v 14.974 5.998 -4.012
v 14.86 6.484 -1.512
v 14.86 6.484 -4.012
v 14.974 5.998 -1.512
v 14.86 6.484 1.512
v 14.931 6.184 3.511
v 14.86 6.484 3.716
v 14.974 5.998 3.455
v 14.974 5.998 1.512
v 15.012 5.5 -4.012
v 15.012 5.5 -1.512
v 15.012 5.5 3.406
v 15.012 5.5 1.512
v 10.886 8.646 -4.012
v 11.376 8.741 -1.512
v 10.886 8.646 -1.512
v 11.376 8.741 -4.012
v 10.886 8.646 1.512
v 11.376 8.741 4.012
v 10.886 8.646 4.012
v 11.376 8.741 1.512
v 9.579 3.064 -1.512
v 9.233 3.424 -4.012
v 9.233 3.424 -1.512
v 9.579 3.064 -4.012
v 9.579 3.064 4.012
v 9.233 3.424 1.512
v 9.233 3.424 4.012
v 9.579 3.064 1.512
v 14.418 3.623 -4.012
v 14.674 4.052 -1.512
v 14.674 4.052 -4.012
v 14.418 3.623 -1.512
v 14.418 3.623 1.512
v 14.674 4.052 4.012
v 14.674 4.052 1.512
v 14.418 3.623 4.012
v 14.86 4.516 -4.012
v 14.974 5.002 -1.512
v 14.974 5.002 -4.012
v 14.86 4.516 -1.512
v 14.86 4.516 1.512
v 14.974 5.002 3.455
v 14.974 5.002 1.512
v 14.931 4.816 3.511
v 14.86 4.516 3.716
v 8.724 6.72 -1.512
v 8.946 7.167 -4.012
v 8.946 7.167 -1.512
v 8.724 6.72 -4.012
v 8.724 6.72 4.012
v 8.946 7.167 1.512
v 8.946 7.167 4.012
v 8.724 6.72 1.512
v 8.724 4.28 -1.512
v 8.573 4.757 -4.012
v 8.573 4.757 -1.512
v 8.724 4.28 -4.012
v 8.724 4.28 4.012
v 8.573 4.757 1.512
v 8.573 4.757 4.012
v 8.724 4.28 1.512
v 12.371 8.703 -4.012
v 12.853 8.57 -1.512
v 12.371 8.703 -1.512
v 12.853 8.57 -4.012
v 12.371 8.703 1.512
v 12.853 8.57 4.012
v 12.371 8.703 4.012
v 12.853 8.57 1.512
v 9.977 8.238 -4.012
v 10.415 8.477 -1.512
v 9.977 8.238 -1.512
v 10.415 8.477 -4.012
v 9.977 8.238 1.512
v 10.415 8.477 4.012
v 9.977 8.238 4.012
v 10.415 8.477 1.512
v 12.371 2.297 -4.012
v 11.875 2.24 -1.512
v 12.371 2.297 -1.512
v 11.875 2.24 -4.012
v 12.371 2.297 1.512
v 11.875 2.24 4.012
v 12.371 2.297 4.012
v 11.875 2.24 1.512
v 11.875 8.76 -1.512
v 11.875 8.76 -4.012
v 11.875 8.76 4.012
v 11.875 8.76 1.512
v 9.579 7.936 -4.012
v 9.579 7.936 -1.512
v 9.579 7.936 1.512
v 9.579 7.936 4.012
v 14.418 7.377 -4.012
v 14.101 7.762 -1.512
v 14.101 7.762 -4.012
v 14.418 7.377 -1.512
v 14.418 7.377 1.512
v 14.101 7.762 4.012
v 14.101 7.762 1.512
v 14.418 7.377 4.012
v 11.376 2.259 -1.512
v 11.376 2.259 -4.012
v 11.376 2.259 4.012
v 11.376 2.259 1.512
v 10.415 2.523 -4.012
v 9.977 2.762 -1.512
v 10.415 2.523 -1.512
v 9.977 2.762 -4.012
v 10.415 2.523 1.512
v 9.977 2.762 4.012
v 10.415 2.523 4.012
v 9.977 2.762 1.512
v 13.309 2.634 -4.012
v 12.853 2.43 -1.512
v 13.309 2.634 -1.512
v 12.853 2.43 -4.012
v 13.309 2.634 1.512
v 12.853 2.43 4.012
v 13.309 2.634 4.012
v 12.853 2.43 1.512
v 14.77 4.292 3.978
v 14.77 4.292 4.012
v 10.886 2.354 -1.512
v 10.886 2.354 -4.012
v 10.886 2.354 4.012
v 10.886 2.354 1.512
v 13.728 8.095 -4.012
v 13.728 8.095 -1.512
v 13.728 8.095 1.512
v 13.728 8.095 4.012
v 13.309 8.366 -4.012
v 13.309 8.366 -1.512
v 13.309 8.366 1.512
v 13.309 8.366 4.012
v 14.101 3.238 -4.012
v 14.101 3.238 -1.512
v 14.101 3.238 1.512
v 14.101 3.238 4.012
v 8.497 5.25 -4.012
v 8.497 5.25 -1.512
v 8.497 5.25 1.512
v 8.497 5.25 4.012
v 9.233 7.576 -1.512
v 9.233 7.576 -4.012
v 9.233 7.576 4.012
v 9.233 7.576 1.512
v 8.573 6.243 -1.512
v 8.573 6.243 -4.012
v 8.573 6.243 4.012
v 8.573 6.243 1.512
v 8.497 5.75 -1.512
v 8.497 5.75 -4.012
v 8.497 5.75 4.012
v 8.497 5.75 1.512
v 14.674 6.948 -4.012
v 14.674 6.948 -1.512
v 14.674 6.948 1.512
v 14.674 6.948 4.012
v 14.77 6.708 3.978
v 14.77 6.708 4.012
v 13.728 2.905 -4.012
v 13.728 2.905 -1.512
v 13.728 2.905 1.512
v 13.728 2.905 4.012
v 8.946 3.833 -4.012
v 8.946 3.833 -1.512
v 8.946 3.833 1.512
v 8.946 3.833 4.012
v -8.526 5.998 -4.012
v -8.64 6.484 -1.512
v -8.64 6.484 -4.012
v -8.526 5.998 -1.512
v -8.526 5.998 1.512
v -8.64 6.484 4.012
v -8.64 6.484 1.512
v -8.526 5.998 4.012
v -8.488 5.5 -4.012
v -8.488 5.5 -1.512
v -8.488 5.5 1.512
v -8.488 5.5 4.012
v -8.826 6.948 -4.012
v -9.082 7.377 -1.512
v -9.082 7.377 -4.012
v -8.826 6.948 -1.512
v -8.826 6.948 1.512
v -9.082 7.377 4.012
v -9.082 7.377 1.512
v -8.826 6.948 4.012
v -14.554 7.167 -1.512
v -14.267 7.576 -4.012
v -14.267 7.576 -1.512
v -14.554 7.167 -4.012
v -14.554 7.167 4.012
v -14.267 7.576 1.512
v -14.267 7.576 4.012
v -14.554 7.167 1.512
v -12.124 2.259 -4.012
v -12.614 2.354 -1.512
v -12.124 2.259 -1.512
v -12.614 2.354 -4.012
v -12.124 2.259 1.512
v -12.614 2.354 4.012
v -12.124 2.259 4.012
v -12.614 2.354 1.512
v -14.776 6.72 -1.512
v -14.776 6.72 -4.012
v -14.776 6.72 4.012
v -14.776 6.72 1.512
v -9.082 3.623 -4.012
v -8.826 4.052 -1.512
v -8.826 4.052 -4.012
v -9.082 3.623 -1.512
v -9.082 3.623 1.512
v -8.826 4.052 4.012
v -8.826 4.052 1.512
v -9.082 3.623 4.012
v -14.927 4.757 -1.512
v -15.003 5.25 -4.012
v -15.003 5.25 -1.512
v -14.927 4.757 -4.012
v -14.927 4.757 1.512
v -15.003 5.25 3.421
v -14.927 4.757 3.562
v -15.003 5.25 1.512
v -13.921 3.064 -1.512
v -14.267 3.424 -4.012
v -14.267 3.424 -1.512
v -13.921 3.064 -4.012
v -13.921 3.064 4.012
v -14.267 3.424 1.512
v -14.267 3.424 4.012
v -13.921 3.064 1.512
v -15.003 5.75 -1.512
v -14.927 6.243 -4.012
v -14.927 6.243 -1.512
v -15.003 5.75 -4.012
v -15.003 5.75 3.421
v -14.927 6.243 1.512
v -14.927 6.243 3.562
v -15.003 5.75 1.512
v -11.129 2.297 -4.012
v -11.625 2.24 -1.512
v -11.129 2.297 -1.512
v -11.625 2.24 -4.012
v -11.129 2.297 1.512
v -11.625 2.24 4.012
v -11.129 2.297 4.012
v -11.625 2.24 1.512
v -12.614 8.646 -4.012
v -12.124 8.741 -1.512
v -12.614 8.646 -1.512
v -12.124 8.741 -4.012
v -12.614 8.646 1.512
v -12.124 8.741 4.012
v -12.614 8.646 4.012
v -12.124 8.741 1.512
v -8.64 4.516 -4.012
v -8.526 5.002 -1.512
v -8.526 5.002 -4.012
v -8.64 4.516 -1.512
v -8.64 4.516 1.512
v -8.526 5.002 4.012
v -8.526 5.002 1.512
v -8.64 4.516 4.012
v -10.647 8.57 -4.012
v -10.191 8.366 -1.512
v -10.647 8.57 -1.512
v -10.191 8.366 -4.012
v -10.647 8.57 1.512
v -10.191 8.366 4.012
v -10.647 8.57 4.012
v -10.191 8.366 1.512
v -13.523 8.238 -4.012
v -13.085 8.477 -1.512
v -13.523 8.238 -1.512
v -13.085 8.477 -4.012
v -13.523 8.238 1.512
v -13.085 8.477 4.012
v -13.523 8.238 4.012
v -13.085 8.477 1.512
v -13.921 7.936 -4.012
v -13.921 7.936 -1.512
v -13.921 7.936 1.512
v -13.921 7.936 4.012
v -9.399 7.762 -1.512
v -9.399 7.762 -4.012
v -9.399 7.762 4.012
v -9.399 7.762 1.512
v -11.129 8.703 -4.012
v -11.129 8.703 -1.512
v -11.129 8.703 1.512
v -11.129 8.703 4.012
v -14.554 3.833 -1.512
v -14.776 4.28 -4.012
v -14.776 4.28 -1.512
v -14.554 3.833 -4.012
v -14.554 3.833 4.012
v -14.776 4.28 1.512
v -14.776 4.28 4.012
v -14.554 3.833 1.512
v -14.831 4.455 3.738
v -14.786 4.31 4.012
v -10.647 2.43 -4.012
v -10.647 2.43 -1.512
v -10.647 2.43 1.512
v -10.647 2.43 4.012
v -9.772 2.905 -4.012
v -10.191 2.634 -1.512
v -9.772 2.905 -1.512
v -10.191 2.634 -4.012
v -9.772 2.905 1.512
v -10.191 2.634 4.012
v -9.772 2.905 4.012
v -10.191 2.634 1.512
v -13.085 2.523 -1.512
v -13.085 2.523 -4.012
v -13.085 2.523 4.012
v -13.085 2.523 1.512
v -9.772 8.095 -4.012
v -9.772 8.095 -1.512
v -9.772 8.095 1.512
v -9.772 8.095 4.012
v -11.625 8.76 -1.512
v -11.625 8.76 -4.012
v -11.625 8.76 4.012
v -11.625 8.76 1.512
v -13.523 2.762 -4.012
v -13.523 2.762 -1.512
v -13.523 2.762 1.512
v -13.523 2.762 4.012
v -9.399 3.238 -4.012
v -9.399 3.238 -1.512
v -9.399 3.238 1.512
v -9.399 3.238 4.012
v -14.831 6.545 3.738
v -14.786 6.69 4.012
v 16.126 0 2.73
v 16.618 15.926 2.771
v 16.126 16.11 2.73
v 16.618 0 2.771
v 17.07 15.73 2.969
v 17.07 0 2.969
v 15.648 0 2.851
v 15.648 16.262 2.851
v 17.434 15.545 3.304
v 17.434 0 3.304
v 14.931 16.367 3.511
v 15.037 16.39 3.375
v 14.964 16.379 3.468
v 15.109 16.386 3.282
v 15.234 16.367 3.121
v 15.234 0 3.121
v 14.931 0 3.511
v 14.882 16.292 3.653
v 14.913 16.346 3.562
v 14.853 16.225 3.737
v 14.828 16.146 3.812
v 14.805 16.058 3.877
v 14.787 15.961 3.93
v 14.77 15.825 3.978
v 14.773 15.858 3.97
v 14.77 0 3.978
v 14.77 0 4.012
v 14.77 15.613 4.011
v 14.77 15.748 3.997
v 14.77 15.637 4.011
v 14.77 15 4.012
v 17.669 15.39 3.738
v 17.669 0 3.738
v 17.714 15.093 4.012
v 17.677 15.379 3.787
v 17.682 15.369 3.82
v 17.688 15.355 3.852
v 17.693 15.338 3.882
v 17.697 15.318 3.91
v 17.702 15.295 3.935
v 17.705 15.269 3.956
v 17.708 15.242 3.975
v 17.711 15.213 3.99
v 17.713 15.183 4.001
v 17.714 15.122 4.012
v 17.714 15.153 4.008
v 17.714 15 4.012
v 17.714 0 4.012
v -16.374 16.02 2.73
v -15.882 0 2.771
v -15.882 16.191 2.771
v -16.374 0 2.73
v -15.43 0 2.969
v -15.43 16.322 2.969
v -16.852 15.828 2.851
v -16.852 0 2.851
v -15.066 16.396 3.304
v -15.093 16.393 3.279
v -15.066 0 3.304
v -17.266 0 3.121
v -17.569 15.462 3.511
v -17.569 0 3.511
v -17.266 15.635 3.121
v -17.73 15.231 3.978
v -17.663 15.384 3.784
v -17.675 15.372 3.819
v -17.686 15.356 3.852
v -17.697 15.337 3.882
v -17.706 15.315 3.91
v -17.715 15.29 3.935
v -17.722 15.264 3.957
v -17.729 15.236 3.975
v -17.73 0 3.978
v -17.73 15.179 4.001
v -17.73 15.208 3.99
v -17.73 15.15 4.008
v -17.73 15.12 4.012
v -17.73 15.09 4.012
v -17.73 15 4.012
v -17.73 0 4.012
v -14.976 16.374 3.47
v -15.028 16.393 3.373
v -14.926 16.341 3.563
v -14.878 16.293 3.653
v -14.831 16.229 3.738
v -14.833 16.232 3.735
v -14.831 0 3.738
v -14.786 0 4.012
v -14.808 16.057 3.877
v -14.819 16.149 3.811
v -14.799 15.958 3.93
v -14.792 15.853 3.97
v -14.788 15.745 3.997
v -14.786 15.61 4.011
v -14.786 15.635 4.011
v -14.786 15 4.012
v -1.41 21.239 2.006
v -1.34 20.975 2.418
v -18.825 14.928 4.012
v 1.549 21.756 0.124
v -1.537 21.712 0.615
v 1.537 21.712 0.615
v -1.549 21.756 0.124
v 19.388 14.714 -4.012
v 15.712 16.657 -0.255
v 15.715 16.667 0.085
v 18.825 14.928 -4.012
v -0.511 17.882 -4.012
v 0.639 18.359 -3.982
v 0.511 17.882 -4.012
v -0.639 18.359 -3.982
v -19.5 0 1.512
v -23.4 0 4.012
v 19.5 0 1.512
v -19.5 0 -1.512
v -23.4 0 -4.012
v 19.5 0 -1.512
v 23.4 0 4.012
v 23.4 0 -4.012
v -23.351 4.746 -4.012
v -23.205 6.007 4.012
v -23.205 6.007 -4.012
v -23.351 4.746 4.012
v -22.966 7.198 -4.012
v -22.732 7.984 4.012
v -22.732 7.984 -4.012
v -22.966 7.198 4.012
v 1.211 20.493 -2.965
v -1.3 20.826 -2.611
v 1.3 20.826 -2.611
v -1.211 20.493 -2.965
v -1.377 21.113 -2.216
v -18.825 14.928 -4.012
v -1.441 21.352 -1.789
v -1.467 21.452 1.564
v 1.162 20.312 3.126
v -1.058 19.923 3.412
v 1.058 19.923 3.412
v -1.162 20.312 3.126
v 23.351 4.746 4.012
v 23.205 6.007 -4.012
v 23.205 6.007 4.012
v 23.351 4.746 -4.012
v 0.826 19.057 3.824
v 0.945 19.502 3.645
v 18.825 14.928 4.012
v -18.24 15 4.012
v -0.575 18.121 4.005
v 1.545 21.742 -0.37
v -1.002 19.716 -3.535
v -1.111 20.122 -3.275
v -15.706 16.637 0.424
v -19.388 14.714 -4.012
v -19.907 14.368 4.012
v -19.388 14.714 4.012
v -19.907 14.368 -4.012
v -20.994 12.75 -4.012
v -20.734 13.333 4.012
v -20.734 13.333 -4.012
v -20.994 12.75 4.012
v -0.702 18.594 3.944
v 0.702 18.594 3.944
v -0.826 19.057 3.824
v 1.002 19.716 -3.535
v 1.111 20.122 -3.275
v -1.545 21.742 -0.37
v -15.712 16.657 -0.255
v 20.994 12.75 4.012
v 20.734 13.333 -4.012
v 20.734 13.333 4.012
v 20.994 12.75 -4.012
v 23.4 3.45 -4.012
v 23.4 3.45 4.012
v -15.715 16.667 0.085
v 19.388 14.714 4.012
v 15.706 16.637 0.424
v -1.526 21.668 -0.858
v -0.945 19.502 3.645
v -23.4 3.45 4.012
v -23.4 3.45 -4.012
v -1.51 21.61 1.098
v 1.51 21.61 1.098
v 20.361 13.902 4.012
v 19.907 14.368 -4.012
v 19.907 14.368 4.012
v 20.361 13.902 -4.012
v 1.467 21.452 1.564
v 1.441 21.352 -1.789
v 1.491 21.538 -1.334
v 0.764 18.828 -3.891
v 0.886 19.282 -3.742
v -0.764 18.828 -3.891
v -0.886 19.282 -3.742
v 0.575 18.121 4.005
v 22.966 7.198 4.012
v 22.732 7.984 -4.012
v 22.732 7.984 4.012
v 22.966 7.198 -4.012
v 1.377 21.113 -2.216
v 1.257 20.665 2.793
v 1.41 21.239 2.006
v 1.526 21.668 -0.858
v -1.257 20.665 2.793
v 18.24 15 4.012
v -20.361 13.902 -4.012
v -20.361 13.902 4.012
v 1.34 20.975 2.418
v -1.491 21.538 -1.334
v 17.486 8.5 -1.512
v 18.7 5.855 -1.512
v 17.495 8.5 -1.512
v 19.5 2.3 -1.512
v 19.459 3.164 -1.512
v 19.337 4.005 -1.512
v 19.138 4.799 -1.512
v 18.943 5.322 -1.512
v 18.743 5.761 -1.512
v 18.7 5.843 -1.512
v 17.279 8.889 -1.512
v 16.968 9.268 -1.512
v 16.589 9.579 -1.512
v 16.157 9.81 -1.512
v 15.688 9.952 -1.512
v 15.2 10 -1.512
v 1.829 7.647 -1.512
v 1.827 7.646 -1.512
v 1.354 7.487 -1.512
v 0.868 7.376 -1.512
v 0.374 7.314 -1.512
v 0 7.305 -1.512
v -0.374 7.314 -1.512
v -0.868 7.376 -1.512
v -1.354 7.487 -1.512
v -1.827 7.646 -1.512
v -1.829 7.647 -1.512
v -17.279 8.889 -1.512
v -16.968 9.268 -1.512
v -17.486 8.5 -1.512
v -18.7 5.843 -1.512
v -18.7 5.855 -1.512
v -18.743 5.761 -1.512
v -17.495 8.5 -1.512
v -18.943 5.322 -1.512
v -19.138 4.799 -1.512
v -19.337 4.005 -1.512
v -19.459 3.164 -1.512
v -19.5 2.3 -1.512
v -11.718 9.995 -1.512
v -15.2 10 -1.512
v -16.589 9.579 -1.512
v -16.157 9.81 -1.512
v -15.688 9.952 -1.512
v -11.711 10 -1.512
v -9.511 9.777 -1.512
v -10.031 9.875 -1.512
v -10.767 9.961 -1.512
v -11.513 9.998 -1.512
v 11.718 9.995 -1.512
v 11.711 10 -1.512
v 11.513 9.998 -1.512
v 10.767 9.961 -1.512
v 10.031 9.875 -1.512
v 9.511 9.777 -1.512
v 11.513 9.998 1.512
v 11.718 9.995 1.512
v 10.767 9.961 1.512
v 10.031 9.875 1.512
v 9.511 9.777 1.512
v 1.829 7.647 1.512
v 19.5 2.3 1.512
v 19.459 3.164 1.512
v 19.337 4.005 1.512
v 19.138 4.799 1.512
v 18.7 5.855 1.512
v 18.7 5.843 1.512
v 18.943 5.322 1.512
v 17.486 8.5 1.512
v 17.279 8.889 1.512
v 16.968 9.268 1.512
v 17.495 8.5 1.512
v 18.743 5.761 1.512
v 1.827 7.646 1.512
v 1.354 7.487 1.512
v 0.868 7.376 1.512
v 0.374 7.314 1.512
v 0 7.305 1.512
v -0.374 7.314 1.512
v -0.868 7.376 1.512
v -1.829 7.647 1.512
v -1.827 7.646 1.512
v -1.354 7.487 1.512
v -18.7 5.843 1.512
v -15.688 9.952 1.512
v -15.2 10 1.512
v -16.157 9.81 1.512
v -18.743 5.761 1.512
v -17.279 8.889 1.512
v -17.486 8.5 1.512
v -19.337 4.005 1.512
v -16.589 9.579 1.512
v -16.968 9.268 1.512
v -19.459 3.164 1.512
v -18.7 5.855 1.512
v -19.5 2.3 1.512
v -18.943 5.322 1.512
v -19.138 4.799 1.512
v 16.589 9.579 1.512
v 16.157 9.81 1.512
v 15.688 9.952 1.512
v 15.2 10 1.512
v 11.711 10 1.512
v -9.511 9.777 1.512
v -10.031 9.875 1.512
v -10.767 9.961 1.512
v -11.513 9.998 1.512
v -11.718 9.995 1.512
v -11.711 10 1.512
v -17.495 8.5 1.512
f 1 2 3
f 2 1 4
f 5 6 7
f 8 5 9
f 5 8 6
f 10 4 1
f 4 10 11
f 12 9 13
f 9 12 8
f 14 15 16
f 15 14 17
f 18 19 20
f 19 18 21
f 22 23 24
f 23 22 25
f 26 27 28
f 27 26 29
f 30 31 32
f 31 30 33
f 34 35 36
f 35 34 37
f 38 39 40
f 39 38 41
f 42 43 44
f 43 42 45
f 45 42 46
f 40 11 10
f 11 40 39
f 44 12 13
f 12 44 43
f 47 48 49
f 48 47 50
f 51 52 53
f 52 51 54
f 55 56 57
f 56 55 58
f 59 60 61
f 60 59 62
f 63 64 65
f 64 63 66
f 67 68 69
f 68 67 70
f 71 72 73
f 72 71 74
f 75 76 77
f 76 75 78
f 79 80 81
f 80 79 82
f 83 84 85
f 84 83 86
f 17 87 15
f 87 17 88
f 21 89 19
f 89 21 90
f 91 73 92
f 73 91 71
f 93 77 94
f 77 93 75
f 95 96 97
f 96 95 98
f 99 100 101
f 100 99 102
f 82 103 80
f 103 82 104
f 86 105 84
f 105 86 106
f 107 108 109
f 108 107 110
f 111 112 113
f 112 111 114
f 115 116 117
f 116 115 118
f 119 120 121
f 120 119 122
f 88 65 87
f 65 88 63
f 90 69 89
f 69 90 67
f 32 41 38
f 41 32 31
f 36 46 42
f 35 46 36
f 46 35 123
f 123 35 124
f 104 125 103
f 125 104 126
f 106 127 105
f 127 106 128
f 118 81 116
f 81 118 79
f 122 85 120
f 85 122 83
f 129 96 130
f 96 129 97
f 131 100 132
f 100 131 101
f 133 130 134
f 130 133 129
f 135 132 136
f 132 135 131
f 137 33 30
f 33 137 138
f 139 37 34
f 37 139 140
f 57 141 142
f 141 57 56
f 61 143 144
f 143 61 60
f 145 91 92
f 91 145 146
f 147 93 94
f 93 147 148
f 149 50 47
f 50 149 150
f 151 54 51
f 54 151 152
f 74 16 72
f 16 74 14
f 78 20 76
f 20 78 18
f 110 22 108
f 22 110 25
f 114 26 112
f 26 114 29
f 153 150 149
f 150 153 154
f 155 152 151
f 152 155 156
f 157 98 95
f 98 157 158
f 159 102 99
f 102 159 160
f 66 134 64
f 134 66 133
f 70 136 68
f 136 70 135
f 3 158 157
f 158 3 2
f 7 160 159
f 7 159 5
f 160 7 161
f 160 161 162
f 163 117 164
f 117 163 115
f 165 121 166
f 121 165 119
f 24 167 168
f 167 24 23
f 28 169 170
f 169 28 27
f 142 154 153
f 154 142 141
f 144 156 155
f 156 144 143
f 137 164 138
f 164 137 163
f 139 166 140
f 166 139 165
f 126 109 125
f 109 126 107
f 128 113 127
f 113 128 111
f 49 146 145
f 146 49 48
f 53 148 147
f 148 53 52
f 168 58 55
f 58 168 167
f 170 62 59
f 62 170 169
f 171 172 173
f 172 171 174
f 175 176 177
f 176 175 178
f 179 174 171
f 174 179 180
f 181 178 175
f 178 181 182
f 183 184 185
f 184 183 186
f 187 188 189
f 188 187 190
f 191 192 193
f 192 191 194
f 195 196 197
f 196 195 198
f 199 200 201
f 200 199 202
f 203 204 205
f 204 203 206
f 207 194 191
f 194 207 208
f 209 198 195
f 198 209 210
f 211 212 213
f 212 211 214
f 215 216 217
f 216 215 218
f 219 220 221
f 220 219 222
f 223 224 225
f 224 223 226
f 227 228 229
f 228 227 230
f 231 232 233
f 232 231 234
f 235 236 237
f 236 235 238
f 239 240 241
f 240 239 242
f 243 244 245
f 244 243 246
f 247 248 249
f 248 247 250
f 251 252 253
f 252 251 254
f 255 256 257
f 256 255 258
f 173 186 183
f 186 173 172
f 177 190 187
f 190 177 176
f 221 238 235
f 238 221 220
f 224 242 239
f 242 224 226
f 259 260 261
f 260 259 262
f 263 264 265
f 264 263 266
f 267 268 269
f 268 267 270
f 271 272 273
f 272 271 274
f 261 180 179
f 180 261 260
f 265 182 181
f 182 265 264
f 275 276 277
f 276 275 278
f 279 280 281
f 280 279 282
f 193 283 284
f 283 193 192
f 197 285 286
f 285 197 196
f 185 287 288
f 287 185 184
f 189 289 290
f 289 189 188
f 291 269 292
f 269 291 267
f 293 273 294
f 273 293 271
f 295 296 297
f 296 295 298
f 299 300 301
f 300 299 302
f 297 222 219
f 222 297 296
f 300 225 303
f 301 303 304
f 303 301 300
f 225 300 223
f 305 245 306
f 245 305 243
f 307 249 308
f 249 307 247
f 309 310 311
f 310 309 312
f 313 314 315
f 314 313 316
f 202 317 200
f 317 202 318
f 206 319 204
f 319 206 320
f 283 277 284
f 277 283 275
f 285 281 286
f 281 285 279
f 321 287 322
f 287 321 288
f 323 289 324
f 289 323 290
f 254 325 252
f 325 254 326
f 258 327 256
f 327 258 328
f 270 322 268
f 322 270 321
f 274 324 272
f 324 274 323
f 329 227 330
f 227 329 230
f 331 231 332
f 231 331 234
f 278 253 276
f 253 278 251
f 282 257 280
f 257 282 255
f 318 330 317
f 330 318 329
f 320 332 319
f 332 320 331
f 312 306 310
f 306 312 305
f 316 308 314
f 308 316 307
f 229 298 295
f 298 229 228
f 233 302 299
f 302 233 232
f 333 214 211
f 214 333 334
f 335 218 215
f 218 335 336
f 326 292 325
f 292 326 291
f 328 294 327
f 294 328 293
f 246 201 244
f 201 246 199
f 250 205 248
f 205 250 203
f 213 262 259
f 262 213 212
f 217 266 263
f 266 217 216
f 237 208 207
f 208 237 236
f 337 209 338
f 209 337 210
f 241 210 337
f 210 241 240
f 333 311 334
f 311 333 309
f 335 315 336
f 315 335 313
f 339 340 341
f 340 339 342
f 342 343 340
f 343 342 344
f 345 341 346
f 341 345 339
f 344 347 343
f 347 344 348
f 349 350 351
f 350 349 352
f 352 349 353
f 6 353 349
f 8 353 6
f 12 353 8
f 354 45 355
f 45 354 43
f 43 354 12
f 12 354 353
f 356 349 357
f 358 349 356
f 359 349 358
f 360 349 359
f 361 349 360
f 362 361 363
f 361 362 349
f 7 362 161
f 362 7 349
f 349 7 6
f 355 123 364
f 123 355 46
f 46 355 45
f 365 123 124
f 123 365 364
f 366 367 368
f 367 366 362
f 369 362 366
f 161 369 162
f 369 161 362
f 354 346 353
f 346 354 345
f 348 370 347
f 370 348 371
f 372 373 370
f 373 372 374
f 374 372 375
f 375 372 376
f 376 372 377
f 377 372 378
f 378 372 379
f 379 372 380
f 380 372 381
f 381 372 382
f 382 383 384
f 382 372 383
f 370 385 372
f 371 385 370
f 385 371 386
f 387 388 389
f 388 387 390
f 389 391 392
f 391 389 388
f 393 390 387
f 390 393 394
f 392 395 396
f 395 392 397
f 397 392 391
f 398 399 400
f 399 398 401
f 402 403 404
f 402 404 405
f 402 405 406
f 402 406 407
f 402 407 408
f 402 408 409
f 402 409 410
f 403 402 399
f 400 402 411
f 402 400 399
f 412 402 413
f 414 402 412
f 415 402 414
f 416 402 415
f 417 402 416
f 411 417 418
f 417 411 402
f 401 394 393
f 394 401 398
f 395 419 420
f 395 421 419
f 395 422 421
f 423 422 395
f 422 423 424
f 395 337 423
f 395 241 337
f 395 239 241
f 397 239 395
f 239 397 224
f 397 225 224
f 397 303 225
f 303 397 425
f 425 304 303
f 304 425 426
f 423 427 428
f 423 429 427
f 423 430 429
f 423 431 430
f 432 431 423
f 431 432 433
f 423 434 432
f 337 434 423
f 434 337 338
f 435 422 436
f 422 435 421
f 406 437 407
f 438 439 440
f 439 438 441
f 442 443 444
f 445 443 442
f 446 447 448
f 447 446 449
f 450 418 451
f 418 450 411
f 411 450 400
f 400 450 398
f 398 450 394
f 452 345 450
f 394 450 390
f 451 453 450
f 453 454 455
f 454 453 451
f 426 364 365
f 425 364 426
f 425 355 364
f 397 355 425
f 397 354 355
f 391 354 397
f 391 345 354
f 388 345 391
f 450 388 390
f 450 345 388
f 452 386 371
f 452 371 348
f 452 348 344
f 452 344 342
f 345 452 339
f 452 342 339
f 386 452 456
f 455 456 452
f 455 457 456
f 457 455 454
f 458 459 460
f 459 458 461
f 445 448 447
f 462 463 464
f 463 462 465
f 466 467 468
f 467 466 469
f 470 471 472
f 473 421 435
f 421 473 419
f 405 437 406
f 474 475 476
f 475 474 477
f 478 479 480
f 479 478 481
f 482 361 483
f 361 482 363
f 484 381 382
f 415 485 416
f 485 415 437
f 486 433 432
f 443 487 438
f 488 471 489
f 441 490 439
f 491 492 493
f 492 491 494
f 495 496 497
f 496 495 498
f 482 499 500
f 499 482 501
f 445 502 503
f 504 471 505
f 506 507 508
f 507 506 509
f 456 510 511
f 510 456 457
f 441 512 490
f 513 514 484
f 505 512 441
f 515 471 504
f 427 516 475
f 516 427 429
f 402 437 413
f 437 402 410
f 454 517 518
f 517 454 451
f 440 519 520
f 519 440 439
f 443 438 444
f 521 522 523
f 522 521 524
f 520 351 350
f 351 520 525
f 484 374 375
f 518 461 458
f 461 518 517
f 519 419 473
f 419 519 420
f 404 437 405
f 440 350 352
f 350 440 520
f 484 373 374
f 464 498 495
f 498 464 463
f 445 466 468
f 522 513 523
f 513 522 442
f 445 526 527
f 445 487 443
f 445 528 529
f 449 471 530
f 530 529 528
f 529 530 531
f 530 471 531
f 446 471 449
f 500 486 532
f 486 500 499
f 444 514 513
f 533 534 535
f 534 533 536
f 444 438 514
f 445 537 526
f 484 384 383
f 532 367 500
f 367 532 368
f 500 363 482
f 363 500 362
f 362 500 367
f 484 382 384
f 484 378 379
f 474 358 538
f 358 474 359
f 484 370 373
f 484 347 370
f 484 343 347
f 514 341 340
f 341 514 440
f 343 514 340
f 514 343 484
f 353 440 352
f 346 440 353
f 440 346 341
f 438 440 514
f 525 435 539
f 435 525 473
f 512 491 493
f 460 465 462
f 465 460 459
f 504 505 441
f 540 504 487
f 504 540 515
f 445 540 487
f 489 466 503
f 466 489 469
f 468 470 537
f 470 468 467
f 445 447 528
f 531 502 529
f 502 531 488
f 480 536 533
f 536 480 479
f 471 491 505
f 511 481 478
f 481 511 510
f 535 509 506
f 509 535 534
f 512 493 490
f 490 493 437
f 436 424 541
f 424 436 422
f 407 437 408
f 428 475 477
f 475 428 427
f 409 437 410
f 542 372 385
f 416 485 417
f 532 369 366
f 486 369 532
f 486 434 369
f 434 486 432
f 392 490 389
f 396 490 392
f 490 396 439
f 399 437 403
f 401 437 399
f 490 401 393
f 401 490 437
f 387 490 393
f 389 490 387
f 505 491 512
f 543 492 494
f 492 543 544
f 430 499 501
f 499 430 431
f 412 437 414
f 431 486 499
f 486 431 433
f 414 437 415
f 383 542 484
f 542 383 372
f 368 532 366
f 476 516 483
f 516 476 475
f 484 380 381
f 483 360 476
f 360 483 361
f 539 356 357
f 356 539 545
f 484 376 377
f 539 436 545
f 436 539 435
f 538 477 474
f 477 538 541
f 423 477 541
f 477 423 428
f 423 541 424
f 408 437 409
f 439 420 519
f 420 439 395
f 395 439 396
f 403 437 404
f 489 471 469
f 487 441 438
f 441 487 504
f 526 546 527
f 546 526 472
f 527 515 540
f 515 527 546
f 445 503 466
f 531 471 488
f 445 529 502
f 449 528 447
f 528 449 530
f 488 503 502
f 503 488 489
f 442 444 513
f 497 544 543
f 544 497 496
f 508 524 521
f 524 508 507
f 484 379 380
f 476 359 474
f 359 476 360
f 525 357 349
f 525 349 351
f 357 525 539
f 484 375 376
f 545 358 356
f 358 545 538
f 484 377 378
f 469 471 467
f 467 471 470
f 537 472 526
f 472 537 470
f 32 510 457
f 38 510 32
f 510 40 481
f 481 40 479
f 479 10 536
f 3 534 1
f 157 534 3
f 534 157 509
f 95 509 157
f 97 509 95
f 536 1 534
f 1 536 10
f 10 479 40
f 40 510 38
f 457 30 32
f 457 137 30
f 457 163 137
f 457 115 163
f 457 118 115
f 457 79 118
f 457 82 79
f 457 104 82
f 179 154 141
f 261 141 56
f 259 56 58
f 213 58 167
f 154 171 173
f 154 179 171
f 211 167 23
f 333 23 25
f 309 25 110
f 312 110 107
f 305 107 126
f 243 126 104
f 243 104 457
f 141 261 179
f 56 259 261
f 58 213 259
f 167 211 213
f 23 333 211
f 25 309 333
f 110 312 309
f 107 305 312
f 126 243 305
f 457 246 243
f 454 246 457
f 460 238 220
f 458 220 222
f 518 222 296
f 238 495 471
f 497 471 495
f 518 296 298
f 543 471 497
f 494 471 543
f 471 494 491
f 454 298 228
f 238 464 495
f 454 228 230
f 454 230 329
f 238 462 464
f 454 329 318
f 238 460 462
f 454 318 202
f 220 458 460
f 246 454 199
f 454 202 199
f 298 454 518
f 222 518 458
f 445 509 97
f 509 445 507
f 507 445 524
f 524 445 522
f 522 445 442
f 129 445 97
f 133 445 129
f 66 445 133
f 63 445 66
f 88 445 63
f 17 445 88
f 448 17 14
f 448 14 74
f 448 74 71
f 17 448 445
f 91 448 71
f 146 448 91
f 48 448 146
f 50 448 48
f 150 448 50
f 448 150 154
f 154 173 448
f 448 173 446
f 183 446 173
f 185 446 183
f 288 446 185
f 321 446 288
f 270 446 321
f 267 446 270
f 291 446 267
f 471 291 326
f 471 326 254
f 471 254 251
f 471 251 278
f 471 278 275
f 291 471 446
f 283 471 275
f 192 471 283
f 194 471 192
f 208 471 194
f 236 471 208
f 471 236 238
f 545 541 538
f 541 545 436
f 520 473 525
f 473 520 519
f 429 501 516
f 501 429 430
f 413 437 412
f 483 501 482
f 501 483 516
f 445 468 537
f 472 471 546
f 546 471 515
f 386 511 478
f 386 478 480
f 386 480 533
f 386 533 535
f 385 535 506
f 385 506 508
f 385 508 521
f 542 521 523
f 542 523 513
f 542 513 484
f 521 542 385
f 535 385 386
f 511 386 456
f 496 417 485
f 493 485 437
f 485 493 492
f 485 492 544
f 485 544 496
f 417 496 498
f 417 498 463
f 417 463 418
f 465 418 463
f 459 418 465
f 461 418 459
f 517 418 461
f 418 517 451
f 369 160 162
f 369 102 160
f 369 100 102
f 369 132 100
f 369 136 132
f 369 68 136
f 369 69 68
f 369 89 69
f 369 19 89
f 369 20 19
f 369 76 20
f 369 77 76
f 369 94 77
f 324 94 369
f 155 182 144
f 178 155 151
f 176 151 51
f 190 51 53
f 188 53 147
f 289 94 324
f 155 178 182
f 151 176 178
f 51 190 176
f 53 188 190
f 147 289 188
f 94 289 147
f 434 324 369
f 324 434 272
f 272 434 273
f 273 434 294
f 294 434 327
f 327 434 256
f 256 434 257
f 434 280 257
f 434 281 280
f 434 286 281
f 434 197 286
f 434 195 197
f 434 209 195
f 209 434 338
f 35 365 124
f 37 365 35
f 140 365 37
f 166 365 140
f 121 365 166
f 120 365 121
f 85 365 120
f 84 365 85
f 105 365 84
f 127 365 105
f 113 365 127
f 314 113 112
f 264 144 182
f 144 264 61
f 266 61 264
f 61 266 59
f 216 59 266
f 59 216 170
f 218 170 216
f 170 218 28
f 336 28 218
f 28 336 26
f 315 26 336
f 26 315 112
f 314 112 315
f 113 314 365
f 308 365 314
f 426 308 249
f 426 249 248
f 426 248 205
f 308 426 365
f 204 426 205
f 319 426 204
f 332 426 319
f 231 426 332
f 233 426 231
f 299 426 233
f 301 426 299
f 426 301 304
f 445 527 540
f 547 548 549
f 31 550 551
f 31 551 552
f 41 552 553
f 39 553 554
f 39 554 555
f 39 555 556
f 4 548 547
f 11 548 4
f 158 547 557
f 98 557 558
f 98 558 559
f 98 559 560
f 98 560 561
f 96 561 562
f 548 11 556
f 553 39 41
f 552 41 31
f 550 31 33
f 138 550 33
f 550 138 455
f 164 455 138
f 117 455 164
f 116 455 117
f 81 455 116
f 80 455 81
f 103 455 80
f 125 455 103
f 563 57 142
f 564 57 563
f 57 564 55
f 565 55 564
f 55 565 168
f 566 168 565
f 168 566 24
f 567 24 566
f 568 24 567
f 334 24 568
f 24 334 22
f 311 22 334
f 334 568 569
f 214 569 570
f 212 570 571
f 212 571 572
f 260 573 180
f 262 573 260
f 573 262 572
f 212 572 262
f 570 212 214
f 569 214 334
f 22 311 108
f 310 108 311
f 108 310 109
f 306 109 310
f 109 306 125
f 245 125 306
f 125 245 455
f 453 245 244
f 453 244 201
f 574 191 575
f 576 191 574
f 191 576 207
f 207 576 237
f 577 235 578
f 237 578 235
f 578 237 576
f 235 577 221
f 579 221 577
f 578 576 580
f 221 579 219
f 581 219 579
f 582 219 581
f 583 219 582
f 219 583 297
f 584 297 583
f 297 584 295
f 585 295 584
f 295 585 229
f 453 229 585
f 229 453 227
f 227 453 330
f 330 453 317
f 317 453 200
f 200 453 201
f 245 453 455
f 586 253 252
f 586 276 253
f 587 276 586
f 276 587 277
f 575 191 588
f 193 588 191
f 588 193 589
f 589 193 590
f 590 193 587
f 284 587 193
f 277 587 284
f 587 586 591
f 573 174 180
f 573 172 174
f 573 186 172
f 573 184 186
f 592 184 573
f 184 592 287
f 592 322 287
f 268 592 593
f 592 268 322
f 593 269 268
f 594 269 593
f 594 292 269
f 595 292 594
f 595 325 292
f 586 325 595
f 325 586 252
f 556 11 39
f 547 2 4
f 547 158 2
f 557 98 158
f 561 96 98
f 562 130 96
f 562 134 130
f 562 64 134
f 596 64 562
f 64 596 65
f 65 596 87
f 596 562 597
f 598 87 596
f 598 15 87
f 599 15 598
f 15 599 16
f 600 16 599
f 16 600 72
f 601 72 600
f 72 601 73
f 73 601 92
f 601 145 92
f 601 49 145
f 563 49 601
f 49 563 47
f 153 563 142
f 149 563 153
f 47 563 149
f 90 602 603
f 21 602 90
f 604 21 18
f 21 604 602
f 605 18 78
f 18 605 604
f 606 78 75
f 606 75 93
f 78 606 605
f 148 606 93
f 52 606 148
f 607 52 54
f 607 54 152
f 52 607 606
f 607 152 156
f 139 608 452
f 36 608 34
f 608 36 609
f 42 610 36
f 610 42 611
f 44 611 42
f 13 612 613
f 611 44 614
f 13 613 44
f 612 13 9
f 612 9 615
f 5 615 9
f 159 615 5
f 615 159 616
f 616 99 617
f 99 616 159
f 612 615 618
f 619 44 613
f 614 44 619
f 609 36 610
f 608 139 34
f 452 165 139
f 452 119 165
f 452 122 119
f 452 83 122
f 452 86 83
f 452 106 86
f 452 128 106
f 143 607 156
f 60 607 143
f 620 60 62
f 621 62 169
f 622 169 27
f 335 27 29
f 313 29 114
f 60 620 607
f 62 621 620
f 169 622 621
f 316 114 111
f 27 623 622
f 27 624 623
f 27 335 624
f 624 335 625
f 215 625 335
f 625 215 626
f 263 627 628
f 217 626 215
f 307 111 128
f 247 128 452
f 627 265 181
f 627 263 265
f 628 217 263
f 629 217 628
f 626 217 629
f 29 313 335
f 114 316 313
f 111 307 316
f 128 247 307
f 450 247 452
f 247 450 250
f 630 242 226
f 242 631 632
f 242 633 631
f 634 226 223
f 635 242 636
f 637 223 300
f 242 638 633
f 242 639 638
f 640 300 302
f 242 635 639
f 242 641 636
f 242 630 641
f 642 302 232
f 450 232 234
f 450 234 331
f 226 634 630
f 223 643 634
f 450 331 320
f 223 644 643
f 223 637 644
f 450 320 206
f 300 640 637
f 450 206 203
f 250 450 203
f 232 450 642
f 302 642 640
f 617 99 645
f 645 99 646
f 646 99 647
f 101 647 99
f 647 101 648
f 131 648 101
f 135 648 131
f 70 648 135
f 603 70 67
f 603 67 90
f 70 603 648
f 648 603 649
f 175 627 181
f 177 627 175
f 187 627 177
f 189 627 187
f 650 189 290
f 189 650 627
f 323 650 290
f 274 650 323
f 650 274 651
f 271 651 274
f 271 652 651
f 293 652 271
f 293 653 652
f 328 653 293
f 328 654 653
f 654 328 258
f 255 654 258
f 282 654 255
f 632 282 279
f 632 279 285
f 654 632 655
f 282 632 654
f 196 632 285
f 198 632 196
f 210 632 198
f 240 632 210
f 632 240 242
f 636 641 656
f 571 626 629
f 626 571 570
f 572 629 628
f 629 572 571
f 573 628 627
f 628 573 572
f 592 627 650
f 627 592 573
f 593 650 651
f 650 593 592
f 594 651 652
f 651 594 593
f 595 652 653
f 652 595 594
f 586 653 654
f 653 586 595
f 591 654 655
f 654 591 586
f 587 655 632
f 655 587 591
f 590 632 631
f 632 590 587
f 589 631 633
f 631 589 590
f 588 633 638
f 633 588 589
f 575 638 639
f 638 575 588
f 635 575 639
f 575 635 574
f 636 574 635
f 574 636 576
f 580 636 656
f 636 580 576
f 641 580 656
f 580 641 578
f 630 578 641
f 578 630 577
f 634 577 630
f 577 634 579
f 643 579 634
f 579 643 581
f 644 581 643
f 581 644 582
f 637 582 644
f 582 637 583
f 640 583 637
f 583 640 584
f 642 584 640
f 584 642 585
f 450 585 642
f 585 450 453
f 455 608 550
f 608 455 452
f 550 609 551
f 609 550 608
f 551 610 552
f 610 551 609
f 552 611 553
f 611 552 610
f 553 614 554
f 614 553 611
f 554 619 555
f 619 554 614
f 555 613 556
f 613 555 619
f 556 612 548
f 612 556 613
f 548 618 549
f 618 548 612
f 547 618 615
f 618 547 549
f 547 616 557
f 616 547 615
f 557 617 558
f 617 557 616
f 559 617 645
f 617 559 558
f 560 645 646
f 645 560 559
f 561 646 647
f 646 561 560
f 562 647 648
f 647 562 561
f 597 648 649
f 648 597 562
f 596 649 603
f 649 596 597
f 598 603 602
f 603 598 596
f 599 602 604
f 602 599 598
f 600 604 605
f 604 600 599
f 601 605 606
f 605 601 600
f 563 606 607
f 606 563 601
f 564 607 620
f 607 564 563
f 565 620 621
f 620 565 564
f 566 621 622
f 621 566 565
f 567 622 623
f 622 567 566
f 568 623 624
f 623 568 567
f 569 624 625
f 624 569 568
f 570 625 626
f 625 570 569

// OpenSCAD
// file: base_chin.scad
standoff_width = 6;
screw_hole_width = 3;
plate_thickness = 2.5;
chin_thickness = 2.5;
 
$fs = $preview ? 1 : 0.5;
$fa = $preview ? 10 : 5;

anti_warp = .15;
filament_width = 1.75;

function anti_warp_widen(v) = v + (filament_width * anti_warp) * 2;
function anti_warp_shrink(v) = v - (filament_width * anti_warp) * 2;

module base_model() {
	difference() {
		square([19.5, 12]);
		translate([0, 2]) {
			translate([0, 10.3]) circle(d = 10);
			translate([1.3, 5.5]) rotate([0, 0, 15.5]) square([15, 10]);
			translate([0, 8]) square([20, 5]);
			translate([19.5, 2.1]) rotate([0, 0, 90 - 65.5]) square([5, 10]);
			translate([15.2, 5.5]) {
				difference() {
					translate([0, 1]) square([2.5, 2]);
					circle(d = 5);
				}
			}
			translate([11.7, 3]) {
				difference() {
					rotate([0, 0, 53]) square([4, 5]);
					scale([1.5, 1]) circle(d = 10);
				}
			}
			translate([16.5, 0.3]) {
				scale([1, 1.75]) difference() {
					translate([2.2, 0]) square([3, 3]);
					circle(d = 6);
				}
			}
		}
	}
}

module standoff_hole(height) {
	assert(height > 0);
	cylinder(h = height, d = anti_warp_widen(standoff_width), center = true);
}

module screwholepos(mirror = false, offset = 0) {
	translate([mirror ? -11.75 - offset : 11.75 + offset, 5.5])
		children();
}

module standoffs(height) {
	assert(height > 0);
	screwholepos() standoff_hole(height);
	screwholepos(true) standoff_hole(height);
}

module model(height) {
	assert(height > 0);
	linear_extrude(height, center = true) {
		base_model();
		mirror([1, 0]) base_model();
	}
}
// main file
include <base_chin.scad>

chin_angle = 15;
camera_bracket_thickness = 3;

module frontbumper() {
	rotate([0, 90]) cylinder(h = 15, d2 = anti_warp_widen(chin_thickness * 2 + plate_thickness), d1 = anti_warp_widen(chin_thickness * 2));
}
	
module frontbumpers() {
	translate([15, 0]) rotate([0, 0, 180 - chin_angle]) frontbumper();
	translate([-15, 0]) rotate([0, 0, 180 + chin_angle]) mirror([1, 0]) frontbumper();
}

module camera_bracket_spacer(width) {
	assert(width > 0);
	rotate([90, 0]) cylinder(d = width, h = 30, center = true);
	translate([0, 0, width / 2]) cube([width, 30, width], center = true);
}

module camera_bracket_spacers(width) {
	assert(width > 0);
	translate([0, 0, 1]) {
		screwholepos(false, width / 2 + standoff_width / 2) camera_bracket_spacer(width);
		screwholepos(true, width / 2 + standoff_width / 2) camera_bracket_spacer(width);
	}
}

module main() {
	difference() {
		hull() {
			scale([1.2, 1.5, 1]) model(anti_warp_widen(chin_thickness * 2 + plate_thickness));
			translate([0, 14, 0]) frontbumpers();
		}
		model(anti_warp_widen(plate_thickness));
		standoffs(anti_warp_widen(chin_thickness * 2 + plate_thickness) * 2);
		translate([0, 0, anti_warp_shrink(chin_thickness + plate_thickness / 2)]) camera_bracket_spacers(camera_bracket_thickness);
	}
}

main();
